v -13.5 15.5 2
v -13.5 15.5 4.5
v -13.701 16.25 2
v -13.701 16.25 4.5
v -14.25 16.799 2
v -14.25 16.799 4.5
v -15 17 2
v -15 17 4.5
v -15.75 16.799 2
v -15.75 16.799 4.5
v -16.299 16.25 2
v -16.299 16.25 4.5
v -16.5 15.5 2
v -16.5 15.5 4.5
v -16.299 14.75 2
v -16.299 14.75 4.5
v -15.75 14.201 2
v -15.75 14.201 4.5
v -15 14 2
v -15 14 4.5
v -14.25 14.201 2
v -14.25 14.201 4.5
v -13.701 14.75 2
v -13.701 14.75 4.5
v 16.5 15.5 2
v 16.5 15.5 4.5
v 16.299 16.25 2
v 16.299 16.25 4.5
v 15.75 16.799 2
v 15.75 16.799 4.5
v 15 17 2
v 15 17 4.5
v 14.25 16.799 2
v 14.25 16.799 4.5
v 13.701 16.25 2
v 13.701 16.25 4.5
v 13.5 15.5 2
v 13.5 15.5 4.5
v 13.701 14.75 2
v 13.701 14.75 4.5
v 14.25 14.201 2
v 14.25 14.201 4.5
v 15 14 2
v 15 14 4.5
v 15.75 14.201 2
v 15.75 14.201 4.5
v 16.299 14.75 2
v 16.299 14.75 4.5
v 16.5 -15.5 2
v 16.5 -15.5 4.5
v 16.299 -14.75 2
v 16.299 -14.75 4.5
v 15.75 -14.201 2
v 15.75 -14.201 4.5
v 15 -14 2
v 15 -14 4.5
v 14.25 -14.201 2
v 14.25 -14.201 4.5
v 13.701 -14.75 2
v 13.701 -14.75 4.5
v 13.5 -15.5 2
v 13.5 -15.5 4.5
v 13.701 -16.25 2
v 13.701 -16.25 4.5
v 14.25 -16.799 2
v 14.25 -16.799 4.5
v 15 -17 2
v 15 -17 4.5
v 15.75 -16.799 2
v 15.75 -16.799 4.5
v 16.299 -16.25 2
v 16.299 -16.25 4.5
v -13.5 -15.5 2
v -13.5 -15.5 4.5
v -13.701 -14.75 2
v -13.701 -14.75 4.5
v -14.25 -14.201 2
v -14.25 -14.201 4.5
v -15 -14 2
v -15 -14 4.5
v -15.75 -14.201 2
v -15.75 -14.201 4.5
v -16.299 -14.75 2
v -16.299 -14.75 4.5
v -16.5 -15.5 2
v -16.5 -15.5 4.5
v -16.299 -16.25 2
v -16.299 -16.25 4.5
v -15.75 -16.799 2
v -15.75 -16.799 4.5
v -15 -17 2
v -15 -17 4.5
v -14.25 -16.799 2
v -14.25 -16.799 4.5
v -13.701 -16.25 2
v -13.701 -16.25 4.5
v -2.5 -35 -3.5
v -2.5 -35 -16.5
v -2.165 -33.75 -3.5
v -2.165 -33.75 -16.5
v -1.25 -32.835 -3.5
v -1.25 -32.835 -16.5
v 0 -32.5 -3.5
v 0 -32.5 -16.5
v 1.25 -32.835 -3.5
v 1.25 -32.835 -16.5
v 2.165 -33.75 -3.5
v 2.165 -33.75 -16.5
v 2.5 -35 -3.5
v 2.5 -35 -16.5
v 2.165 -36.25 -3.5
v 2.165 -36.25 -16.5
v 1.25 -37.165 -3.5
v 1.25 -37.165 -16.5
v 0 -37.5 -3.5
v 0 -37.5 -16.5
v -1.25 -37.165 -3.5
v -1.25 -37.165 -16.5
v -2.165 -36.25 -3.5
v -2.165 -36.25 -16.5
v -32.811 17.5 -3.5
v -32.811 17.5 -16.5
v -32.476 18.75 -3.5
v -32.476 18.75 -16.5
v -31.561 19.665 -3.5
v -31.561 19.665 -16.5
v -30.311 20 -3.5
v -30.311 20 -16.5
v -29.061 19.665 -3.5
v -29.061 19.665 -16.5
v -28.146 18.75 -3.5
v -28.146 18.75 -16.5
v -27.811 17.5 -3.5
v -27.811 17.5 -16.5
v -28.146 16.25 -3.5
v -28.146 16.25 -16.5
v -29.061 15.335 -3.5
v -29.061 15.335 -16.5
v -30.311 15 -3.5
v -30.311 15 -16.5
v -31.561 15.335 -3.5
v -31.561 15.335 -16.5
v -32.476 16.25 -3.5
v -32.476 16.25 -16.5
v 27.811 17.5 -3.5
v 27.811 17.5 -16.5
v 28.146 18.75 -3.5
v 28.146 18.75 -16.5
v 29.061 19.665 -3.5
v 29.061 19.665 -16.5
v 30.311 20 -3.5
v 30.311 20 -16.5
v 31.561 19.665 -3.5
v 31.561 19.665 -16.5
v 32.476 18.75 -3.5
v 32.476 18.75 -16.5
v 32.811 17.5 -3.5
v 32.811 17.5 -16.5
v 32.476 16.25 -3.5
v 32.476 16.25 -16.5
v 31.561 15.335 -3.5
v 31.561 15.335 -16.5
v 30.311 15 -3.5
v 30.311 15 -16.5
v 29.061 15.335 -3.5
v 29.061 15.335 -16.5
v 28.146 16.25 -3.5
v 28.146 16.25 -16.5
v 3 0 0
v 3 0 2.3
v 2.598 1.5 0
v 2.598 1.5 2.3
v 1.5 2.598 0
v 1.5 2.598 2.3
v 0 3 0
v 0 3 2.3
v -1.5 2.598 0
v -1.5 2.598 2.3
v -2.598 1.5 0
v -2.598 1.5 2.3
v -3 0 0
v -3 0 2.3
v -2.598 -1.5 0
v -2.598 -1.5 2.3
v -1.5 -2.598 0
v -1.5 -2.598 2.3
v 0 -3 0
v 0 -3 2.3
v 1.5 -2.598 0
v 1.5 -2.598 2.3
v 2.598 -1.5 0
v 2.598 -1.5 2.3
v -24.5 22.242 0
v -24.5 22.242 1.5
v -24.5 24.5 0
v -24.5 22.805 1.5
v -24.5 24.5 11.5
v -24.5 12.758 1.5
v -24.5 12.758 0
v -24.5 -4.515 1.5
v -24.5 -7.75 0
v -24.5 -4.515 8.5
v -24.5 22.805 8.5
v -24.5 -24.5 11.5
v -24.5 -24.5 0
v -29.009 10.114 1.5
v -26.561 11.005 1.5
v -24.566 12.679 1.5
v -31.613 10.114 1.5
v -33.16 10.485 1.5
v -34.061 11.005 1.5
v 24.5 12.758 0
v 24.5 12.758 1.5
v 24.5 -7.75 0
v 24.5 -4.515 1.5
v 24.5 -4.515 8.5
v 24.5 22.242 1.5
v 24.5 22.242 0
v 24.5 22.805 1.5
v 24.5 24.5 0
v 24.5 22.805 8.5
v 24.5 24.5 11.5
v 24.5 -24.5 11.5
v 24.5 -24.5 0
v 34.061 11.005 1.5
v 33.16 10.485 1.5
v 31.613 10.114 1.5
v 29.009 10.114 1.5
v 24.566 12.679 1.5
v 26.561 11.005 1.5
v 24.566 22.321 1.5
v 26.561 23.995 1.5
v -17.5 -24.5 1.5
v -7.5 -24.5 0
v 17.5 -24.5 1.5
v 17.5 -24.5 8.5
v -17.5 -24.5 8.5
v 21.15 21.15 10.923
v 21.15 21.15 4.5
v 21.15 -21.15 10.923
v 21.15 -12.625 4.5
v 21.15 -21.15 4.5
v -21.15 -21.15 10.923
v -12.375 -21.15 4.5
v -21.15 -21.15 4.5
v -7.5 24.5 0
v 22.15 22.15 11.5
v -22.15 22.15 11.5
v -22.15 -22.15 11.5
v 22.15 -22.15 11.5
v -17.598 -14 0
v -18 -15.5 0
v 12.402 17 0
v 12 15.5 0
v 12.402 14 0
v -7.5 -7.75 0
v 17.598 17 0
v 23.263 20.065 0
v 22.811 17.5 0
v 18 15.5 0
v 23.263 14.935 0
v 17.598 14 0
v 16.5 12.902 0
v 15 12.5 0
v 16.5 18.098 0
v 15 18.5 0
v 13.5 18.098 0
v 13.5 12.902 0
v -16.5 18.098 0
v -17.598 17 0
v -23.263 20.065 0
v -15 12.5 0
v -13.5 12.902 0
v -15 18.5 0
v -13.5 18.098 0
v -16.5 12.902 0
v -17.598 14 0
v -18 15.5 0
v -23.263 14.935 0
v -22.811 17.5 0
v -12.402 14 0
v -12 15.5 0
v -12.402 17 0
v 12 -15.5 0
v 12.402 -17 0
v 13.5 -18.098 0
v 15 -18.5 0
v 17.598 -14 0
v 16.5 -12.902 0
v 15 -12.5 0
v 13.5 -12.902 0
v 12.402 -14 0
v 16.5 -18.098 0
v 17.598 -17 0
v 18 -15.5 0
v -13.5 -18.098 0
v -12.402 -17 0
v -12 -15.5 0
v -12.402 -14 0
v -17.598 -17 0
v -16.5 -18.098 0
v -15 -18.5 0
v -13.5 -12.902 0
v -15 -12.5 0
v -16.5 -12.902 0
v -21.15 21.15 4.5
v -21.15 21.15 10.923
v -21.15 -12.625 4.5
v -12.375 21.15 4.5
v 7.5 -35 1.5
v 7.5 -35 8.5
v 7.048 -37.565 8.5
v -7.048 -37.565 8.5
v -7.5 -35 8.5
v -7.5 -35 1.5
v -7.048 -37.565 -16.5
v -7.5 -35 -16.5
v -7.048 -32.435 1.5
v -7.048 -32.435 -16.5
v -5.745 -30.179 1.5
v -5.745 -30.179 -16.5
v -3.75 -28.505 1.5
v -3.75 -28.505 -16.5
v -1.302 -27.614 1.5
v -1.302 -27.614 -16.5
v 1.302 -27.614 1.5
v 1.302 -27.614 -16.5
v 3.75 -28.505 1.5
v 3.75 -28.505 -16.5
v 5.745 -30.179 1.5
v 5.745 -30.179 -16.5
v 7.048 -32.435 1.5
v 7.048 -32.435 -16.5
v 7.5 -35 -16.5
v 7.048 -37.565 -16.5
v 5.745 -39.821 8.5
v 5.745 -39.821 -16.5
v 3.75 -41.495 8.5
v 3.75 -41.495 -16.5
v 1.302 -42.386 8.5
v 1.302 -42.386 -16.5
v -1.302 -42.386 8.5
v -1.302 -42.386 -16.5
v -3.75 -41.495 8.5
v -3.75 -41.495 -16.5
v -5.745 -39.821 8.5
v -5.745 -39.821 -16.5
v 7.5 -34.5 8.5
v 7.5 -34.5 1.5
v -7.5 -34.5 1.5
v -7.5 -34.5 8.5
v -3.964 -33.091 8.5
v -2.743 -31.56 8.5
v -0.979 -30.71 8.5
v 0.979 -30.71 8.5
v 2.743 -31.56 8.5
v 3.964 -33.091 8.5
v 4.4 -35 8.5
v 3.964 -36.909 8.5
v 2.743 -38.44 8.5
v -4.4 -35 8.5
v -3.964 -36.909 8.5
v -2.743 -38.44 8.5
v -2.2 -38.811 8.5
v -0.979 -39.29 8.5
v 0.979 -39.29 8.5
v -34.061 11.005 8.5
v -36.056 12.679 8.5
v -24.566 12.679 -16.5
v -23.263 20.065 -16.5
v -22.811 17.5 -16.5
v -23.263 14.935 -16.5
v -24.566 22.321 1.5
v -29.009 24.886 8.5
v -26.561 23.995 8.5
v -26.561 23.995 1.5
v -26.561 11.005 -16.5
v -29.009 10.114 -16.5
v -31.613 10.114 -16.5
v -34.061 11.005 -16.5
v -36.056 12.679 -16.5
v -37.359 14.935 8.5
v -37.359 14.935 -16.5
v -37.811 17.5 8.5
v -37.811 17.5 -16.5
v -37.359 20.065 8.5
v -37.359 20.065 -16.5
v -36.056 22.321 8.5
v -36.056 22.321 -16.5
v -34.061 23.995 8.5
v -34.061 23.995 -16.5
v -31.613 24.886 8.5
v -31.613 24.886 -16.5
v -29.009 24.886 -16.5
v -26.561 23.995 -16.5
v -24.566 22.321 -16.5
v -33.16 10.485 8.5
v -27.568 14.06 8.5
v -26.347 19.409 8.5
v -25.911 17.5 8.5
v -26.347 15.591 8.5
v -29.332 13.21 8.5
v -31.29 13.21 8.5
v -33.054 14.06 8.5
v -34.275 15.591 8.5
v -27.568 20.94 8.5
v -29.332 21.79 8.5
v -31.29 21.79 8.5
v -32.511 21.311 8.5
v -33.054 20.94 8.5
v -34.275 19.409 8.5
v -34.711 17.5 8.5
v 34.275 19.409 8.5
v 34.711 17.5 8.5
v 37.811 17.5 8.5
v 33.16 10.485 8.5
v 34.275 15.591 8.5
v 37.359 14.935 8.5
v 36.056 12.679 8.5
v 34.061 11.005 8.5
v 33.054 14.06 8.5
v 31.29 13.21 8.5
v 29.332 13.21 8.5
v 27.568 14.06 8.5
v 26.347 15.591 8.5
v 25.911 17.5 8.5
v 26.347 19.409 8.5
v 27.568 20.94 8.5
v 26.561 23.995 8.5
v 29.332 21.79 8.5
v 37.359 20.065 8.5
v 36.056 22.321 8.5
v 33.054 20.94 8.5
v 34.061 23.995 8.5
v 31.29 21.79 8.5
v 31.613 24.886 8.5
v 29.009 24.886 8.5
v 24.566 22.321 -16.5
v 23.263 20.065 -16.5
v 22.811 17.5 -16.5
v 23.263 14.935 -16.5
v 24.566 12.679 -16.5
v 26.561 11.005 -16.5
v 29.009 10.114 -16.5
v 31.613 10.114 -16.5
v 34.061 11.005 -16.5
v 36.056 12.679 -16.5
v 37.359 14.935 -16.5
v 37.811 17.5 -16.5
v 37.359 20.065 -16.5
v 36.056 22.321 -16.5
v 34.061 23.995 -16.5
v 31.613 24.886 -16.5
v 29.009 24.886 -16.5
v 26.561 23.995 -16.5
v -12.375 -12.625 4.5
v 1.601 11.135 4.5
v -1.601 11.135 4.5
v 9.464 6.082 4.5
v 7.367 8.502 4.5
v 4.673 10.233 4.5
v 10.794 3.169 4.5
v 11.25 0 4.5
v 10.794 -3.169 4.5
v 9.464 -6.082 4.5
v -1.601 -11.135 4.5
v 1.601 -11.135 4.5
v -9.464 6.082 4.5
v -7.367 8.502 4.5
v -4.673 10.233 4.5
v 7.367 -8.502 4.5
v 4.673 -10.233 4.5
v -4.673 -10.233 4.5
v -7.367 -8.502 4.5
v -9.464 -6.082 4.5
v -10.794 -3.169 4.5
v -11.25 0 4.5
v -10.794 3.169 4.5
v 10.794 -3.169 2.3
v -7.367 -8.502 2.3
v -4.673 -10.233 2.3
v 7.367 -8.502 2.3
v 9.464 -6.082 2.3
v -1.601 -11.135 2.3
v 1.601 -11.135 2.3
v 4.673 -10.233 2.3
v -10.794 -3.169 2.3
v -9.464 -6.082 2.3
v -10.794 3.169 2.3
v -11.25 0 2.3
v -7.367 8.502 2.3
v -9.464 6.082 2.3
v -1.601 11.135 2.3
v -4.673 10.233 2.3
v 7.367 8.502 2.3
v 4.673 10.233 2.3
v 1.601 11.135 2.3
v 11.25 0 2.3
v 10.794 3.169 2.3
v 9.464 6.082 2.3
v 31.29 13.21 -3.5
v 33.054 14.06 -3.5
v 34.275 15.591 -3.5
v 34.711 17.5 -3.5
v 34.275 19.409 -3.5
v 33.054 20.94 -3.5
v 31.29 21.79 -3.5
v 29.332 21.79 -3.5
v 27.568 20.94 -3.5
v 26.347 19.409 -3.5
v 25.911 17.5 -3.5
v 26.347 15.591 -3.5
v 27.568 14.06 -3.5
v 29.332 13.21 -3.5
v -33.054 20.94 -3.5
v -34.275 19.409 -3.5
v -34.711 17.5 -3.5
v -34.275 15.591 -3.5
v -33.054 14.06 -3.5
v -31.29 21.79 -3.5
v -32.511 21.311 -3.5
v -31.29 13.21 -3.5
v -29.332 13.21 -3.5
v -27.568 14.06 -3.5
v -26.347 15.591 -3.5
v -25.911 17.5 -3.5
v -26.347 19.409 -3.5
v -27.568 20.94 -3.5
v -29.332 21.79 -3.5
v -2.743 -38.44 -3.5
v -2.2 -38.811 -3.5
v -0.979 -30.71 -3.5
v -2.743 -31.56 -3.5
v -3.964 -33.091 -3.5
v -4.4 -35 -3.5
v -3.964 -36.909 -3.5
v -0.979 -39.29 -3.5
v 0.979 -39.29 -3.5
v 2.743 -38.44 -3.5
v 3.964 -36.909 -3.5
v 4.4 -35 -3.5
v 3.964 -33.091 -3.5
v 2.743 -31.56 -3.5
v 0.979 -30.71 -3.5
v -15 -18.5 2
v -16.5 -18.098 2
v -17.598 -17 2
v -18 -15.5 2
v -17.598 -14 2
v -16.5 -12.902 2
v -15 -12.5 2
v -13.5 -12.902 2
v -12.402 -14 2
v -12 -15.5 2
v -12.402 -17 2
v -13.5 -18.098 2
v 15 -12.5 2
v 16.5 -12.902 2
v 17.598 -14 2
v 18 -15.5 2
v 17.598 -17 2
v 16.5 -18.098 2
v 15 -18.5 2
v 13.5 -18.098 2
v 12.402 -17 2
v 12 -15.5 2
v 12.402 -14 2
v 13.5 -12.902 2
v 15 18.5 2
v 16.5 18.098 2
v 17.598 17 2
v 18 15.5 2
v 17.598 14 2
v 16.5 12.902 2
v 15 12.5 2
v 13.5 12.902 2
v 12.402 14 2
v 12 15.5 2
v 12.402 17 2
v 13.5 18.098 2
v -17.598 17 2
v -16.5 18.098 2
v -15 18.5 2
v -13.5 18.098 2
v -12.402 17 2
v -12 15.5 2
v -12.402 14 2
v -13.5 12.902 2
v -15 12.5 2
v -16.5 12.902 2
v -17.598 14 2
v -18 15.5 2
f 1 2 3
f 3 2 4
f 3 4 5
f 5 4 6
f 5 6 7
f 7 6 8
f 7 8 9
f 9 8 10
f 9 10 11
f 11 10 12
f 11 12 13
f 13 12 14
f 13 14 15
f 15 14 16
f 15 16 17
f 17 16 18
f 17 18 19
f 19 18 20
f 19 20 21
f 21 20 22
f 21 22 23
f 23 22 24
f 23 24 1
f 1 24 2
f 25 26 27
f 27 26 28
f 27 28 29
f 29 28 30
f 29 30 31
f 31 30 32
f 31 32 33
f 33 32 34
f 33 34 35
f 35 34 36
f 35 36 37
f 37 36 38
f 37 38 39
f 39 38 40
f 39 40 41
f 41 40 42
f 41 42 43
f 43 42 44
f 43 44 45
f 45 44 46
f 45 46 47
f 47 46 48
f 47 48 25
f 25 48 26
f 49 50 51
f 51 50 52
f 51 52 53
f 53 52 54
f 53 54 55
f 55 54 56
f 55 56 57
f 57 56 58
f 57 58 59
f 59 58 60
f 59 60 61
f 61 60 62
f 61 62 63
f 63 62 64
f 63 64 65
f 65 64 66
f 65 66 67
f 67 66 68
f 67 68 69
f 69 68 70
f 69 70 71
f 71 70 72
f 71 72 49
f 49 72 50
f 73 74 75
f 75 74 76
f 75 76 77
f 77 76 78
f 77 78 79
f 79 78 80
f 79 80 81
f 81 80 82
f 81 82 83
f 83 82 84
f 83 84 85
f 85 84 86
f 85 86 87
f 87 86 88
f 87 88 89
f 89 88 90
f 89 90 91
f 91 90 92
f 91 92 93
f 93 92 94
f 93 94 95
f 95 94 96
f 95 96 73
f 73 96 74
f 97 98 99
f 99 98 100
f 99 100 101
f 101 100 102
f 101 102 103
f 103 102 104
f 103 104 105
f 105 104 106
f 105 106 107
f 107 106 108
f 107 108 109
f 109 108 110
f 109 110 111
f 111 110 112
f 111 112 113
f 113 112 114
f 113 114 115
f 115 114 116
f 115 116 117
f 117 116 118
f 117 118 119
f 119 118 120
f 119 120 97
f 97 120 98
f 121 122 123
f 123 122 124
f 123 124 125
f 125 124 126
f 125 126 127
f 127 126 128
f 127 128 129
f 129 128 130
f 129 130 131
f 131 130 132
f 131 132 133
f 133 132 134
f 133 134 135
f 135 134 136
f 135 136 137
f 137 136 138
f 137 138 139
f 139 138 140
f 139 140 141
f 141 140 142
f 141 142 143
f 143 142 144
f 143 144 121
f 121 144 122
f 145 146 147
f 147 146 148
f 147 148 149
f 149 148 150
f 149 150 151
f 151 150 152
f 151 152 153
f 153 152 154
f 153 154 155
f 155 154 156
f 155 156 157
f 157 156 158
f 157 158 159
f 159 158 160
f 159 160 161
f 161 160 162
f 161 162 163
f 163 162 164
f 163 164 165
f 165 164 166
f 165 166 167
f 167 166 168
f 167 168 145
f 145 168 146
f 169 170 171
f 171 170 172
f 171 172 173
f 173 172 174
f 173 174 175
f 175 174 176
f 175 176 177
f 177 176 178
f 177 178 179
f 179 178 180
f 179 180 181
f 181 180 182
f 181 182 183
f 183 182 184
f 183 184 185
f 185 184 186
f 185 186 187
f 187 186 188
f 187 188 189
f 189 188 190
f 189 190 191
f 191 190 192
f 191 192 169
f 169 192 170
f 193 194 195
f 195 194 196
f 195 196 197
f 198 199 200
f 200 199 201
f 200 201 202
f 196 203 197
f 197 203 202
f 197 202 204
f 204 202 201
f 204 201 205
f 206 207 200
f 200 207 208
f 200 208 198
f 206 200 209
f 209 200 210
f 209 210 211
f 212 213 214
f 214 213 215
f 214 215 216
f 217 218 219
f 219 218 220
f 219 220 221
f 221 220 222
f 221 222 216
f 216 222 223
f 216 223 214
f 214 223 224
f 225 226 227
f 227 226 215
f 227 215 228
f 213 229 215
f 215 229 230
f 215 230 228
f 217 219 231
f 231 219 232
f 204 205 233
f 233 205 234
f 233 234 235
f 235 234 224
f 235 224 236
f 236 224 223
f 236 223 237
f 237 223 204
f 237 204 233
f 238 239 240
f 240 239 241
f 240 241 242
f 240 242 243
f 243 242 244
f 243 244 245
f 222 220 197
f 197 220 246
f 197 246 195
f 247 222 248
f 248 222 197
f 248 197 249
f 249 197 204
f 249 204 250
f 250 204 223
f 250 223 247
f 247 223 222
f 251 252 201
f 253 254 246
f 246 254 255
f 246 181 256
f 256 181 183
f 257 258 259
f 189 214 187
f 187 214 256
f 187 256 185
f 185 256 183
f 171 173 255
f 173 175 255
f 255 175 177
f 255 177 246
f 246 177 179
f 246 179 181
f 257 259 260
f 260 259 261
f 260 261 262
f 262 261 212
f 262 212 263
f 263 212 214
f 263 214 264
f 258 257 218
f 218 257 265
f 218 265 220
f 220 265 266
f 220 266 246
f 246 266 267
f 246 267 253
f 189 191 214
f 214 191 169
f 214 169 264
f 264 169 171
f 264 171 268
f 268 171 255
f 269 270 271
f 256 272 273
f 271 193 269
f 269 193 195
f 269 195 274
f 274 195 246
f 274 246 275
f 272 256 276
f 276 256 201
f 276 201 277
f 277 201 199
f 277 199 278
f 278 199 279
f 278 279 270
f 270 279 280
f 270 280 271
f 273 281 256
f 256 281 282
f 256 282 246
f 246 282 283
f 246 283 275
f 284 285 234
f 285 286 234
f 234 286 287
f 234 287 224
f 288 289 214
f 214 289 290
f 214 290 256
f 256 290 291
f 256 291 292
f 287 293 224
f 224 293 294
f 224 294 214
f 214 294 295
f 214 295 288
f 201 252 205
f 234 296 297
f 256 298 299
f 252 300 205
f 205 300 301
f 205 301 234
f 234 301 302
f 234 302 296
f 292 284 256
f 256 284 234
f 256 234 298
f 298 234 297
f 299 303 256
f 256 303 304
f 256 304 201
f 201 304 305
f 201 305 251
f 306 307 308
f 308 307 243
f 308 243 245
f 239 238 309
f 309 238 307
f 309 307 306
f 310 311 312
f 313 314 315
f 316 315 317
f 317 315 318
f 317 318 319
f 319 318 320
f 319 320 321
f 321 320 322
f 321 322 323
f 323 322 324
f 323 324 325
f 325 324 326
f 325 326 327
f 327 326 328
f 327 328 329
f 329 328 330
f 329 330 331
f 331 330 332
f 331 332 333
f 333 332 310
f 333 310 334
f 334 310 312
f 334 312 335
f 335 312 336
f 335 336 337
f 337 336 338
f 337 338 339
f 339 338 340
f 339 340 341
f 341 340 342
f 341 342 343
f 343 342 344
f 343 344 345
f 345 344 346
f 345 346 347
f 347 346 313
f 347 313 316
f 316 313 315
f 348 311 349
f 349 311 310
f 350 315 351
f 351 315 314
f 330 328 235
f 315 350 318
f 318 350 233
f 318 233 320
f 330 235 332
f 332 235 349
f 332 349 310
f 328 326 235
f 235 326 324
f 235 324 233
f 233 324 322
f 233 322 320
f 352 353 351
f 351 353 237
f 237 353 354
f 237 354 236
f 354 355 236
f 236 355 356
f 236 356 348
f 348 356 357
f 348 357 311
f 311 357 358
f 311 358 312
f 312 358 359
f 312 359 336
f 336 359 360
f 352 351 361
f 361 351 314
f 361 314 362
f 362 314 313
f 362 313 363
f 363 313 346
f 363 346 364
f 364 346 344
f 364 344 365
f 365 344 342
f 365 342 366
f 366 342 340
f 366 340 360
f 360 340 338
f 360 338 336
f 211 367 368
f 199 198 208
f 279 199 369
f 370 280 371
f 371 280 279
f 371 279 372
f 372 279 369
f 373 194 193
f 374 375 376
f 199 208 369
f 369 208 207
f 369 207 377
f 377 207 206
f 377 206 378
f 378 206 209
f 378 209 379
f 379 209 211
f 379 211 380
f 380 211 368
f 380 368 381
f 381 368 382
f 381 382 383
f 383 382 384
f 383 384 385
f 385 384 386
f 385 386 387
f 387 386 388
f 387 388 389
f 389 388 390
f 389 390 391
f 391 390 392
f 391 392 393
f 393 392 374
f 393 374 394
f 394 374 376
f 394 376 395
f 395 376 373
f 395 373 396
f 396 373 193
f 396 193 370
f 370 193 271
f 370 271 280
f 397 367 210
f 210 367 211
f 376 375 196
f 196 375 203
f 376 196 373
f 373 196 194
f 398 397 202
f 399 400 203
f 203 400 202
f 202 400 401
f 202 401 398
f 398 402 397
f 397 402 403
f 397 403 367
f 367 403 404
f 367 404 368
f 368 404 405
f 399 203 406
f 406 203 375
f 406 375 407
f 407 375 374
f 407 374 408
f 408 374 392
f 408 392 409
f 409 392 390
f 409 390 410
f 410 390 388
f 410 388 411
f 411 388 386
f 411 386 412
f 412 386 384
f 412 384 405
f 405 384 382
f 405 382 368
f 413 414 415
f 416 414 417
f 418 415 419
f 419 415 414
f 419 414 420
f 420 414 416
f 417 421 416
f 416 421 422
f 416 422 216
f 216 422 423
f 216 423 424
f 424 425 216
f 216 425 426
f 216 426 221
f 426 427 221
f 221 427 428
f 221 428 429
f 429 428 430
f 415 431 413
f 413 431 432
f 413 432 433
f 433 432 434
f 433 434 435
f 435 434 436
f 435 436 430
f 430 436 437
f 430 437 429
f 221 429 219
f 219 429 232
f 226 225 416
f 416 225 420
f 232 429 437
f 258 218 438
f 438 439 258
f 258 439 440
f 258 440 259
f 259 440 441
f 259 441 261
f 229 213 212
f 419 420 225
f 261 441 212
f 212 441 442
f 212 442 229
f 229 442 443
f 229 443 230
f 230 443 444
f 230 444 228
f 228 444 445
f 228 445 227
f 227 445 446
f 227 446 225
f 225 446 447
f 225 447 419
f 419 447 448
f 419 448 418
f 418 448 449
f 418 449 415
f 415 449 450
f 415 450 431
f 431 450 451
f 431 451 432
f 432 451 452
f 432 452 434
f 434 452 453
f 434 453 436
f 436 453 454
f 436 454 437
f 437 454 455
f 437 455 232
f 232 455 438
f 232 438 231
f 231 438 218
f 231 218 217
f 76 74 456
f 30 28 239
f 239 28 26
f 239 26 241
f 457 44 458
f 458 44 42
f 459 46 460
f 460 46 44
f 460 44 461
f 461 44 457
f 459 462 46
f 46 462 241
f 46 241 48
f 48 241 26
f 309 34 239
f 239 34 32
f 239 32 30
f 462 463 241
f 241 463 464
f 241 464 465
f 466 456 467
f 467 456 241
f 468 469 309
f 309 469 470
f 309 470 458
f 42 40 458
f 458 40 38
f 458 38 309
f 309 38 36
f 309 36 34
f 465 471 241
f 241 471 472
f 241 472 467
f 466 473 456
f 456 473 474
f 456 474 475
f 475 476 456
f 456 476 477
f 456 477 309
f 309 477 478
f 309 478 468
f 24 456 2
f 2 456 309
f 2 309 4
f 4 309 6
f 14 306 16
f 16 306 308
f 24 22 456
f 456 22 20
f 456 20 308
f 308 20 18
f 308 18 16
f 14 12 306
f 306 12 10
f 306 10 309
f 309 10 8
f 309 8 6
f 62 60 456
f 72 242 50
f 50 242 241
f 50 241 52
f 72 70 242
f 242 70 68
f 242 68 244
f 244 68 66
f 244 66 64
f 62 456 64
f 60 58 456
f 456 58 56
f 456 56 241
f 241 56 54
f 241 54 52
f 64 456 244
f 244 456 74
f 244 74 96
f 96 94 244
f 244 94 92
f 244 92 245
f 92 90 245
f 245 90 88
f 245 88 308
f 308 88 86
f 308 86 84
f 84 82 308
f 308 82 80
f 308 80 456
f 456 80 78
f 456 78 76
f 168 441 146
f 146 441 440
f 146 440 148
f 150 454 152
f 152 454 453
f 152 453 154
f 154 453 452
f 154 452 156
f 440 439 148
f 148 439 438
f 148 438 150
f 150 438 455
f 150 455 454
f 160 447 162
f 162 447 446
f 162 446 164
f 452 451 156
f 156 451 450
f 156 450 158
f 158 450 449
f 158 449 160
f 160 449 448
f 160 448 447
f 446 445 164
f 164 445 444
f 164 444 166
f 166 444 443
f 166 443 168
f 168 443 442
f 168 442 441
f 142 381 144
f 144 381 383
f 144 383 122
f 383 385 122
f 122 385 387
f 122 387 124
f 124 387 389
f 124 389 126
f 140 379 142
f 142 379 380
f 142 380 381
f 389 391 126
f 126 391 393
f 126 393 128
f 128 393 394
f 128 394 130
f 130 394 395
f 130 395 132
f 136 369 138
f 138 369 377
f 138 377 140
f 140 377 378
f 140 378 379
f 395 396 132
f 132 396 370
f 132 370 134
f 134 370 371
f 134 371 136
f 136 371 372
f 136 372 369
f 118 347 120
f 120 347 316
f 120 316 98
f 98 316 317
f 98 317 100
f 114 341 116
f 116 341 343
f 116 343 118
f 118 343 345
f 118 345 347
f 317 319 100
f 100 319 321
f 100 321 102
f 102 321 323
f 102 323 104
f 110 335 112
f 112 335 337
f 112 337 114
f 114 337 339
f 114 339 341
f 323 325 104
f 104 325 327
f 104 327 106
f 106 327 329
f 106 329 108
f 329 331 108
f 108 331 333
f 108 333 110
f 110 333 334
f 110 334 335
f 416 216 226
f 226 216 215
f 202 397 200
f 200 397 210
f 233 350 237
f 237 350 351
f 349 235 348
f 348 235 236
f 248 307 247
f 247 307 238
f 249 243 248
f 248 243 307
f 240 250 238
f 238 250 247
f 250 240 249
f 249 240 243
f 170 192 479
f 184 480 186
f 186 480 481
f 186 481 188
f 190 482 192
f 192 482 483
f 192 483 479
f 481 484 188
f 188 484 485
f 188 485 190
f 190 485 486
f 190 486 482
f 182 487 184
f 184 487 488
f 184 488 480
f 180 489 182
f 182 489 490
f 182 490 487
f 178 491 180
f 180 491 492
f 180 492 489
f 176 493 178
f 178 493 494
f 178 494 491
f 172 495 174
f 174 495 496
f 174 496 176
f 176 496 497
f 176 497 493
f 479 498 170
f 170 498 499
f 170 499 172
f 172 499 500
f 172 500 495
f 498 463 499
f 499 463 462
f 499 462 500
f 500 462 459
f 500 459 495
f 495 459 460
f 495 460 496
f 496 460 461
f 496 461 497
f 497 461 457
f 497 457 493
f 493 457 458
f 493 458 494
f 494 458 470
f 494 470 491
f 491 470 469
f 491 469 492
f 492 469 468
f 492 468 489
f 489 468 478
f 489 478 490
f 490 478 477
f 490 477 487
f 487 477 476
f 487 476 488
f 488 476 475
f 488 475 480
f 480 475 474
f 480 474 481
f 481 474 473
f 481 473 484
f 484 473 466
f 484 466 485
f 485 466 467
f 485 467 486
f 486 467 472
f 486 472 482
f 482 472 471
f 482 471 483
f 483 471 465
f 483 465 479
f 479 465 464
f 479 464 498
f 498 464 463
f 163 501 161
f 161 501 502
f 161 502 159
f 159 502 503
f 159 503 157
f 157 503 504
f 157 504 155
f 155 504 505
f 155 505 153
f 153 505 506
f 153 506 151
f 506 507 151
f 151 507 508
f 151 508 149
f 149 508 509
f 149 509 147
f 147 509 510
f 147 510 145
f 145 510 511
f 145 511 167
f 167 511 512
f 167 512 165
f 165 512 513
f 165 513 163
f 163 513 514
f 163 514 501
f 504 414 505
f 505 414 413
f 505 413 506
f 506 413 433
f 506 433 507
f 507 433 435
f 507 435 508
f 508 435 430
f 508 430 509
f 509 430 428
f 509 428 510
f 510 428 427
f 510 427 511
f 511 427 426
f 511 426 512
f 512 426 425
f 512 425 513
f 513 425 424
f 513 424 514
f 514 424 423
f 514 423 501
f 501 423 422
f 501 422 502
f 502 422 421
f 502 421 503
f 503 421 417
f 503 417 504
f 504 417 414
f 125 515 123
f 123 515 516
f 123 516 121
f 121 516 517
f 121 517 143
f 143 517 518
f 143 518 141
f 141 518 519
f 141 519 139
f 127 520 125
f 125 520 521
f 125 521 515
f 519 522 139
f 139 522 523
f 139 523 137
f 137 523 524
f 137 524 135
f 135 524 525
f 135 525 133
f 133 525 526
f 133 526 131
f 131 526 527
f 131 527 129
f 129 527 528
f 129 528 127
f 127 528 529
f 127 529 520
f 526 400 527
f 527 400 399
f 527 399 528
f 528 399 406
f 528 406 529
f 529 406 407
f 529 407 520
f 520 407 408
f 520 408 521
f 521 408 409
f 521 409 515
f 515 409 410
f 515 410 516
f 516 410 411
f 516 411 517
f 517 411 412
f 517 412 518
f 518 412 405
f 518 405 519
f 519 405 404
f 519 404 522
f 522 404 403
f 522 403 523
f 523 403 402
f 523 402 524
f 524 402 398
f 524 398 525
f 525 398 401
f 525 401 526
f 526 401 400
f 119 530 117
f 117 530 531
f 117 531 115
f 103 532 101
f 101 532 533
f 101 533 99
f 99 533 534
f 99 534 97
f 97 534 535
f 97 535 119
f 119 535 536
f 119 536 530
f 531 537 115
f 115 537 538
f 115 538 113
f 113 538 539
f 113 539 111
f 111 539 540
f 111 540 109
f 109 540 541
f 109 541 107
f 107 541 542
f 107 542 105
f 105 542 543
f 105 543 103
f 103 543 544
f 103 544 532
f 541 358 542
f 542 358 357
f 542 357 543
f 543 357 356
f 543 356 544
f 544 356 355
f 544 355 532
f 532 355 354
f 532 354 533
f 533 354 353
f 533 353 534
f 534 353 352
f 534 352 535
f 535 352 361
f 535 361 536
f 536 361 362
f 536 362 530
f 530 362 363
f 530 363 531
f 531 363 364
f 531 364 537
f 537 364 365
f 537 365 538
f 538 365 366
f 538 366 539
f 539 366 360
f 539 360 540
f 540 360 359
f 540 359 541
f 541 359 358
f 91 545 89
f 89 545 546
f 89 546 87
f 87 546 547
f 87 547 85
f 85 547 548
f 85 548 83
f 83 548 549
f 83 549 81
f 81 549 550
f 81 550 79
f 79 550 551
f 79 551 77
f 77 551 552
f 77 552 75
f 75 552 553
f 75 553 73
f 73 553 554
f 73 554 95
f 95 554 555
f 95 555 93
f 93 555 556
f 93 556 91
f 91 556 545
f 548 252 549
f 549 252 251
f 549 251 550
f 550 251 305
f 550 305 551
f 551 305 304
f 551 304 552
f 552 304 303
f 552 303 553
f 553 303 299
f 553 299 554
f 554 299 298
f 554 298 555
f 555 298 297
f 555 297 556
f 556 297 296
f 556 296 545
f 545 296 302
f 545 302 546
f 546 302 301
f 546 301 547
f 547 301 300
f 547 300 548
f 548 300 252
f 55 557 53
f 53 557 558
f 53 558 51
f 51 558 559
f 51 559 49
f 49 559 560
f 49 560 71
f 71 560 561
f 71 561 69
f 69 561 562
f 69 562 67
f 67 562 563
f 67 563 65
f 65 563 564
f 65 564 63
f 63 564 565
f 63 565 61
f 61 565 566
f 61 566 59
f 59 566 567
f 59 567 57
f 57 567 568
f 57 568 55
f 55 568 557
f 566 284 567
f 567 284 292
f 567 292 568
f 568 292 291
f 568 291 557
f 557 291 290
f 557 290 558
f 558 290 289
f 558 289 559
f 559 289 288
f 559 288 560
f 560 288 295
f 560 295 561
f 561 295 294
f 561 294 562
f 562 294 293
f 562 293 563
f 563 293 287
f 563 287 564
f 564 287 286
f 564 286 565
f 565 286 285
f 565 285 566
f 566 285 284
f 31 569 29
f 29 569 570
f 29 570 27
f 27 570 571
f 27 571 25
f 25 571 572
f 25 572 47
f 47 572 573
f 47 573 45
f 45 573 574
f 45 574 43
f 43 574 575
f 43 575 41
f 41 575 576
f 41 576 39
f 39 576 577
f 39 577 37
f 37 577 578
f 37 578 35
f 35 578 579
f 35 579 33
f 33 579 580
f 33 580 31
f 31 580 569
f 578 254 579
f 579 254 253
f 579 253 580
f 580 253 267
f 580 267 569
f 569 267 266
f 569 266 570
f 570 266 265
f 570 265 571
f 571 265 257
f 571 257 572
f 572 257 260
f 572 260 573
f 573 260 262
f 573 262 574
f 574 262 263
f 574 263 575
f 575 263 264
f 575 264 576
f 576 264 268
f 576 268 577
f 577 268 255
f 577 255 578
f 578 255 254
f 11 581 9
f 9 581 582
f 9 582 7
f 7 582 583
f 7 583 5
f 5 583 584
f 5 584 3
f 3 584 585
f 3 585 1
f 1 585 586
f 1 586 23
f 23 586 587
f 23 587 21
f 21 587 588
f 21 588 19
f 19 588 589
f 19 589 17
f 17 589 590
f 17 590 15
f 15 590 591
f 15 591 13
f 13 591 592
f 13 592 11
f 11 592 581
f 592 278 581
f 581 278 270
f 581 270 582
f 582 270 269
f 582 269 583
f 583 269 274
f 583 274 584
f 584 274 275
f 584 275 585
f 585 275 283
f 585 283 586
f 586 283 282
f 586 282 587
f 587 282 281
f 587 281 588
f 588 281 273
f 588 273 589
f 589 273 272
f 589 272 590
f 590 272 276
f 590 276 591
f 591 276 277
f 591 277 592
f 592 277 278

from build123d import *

# Parameters (mm, degrees)
SKIZZE1_W                             = 49
SKIZZE1_H                             = 49
AUFSATZ_LINEAR_AUSTRAGEN1_DEPTH       = 11.5
SKIZZE2_W                             = 42.3
SKIZZE2_H                             = 42.3
SCHNITT_LINEAR_AUSTRAGEN1_DEPTH       = 5
SKIZZE3_R                             = 2.85
SCHNITT_LINEAR_AUSTRAGEN2_DEPTH       = 7
AUFSATZ_LINEAR_AUSTRAGEN2_DEPTH       = 2
AUFSATZ_LINEAR_AUSTRAGEN2_DEPTH_BACK  = 5
SKIZZE6_W                             = 42.3
SKIZZE6_H                             = 42.3
SCHNITT_LINEAR_AUSTRAGEN3_DEPTH       = 7
AUFSATZ_LINEAR_START                  = 18
SKIZZE8_R                             = 7.5
AUFSATZ_LINEAR_AUSTRAGEN3_DEPTH       = 18
FASE2_SIZE                            = 10
FASE4_SIZE                            = 1
FASE4_SIZE2                           = 0.577350269
SKIZZE17_R                            = 3
SCHNITT_LINEAR_AUSTRAGEN8_DEPTH       = 23
SKIZZE18_R                            = 11.25
SCHNITT_LINEAR_AUSTRAGEN9_DEPTH       = 2.2
SCHNITT_LINEAR_AUSTRAGEN10_DEPTH      = 64.402786508
SCHNITT_LINEAR_AUSTRAGEN10_DEPTH_BACK = 64.402786508
SKIZZE10_R                            = 2.5
SKIZZE19_R                            = 4.4
SCHNITT_LINEAR_AUSTRAGEN11_DEPTH      = 12
KREISMUSTER1_COUNT                    = 3
SKIZZE21_R                            = 1.5
SCHNITT_LINEAR_AUSTRAGEN12_DEPTH      = 10
SKIZZE22_R                            = 3
SCHNITT_LINEAR_AUSTRAGEN13_DEPTH      = 2


with BuildPart() as part:
    # Skizze1 → Aufsatz-Linear austragen1 (new body)
    with BuildSketch(Plane.XY):
        Rectangle(SKIZZE1_W, SKIZZE1_H)
    extrude(amount=AUFSATZ_LINEAR_AUSTRAGEN1_DEPTH)

    # Skizze2 → Schnitt-Linear austragen1 (cut)
    with BuildSketch(Plane.XY.offset(11.5)):
        Rectangle(SKIZZE2_W, SKIZZE2_H)
    extrude(amount=-SCHNITT_LINEAR_AUSTRAGEN1_DEPTH, mode=Mode.SUBTRACT)

    # Skizze3 → Schnitt-Linear austragen2 (cut)
    with BuildSketch(Plane.XY.offset(6.5)):
        Circle(SKIZZE3_R)
    extrude(amount=-SCHNITT_LINEAR_AUSTRAGEN2_DEPTH, mode=Mode.SUBTRACT)

    # Skizze5 → Aufsatz-Linear austragen2 (add, two sides: drawn at the far end of the back side and taken through both)
    with BuildSketch(Plane.XY.offset(6.5).offset(-AUFSATZ_LINEAR_AUSTRAGEN2_DEPTH_BACK)):
        with BuildLine():
            Line((26.560889132, 23.995190528), (0, 8.660254038))
            Line((0, 8.660254038), (-26.560889132, 23.995190528))
            ThreePointArc((-26.560889132, 23.995190528), (-36.806079661, 21.25), (-34.060889132, 11.004809472))
            Line((-34.060889132, 11.004809472), (-7.5, -4.330127019))
            Line((-7.5, -4.330127019), (-7.5, -35))
            ThreePointArc((-7.5, -35), (0, -42.5), (7.5, -35))
            Line((7.5, -35), (7.5, -4.330127019))
            Line((7.5, -4.330127019), (34.060889132, 11.004809472))
            ThreePointArc((34.060889132, 11.004809472), (36.806079661, 21.25), (26.560889132, 23.995190528))
        make_face()
    extrude(amount=AUFSATZ_LINEAR_AUSTRAGEN2_DEPTH + AUFSATZ_LINEAR_AUSTRAGEN2_DEPTH_BACK)

    # Skizze6 → Schnitt-Linear austragen3 (cut)
    with BuildSketch(Plane.XY.offset(11.5)):
        Rectangle(SKIZZE6_W, SKIZZE6_H)
    extrude(amount=-SCHNITT_LINEAR_AUSTRAGEN3_DEPTH, mode=Mode.SUBTRACT)

    # Skizze8 → Aufsatz-Linear austragen3 (add)
    with BuildSketch(Plane(origin=(0, 0, 1.5), x_dir=(-1, 0, 0), z_dir=(0, 0, -1)).offset(AUFSATZ_LINEAR_START)):
        with Locations(Location((-30.310889132, 17.5, 0), (0, 0, 240))):
            Circle(SKIZZE8_R)
        with Locations((0, -35)):
            Circle(SKIZZE8_R)
        with Locations((30.310889132, 17.5)):
            Circle(SKIZZE8_R)
    extrude(amount=-AUFSATZ_LINEAR_AUSTRAGEN3_DEPTH)

    # Fase2
    fase2_edges = [part.edges().sort_by_distance(p)[0] for p in [
        (-24.5, 5.484827557, 5),
        (-7.5, -24.5, 5),
        (7.5, -24.5, 5),
        (24.5, 5.484827557, 5),
    ]]
    chamfer(fase2_edges, length=FASE2_SIZE)

    # Fase4
    fase4_edges = [part.edges().sort_by_distance(p)[0] for p in [
        (21.15, 0, 11.5),
        (0, 21.15, 11.5),
        (-21.15, 0, 11.5),
        (0, -21.15, 11.5),
    ]]
    fase4_side = [part.faces().sort_by_distance(p)[0] for p in [
        (0, 23.807035354, 11.5),
    ]]
    chamfer(fase4_edges, length=FASE4_SIZE, length2=FASE4_SIZE2, reference=fase4_side[0])

    # Skizze17 → Schnitt-Linear austragen8 (cut)
    with BuildSketch(Plane.XY.offset(4.5)):
        Circle(SKIZZE17_R)
    extrude(amount=-SCHNITT_LINEAR_AUSTRAGEN8_DEPTH, mode=Mode.SUBTRACT)

    # Skizze18 → Schnitt-Linear austragen9 (cut)
    with BuildSketch(Plane.XY.offset(4.5)):
        Circle(SKIZZE18_R)
    extrude(amount=-SCHNITT_LINEAR_AUSTRAGEN9_DEPTH, mode=Mode.SUBTRACT)

    # Skizze10 → Schnitt-Linear austragen10 (cut, two sides: drawn at the far end of the back side and taken through both)
    with BuildSketch(Plane(origin=(0, 0, -16.5), x_dir=(-1, 0, 0), z_dir=(0, 0, -1)).offset(-SCHNITT_LINEAR_AUSTRAGEN10_DEPTH_BACK)):
        with Locations((-30.310889132, 17.5)):
            Circle(SKIZZE10_R)
        with Locations((30.310889132, 17.5)):
            Circle(SKIZZE10_R)
        with Locations((0, -35)):
            Circle(SKIZZE10_R)
    extrude(amount=SCHNITT_LINEAR_AUSTRAGEN10_DEPTH + SCHNITT_LINEAR_AUSTRAGEN10_DEPTH_BACK, mode=Mode.SUBTRACT)

    # Skizze19 → Schnitt-Linear austragen11 (cut)
    with BuildSketch(Plane.XY.offset(8.5)):
        with Locations((30.310889132, 17.5)):
            Circle(SKIZZE19_R)
    schnitt_linear_austragen11 = extrude(amount=-SCHNITT_LINEAR_AUSTRAGEN11_DEPTH, mode=Mode.SUBTRACT)

    # Kreismuster1: Schnitt-Linear austragen11 ×3 about axis
    kreismuster1_axis = Axis((0, 0, 0), (0, 0, 1))
    for i in range(1, KREISMUSTER1_COUNT):
        add(schnitt_linear_austragen11.rotate(kreismuster1_axis, i * 360 / KREISMUSTER1_COUNT), mode=Mode.SUBTRACT)

    # Skizze21 → Schnitt-Linear austragen12 (cut)
    with BuildSketch(Plane.XY.offset(4.5)):
        with Locations((-15, 15.5)):
            Circle(SKIZZE21_R)
        with Locations((15, 15.5)):
            Circle(SKIZZE21_R)
        with Locations((15, -15.5)):
            Circle(SKIZZE21_R)
        with Locations((-15, -15.5)):
            Circle(SKIZZE21_R)
    extrude(amount=-SCHNITT_LINEAR_AUSTRAGEN12_DEPTH, mode=Mode.SUBTRACT)

    # Skizze22 → Schnitt-Linear austragen13 (cut)
    with BuildSketch(Plane(origin=(0, 0, 0), x_dir=(-1, 0, 0), z_dir=(0, 0, -1))):
        with Locations((-15, 15.5)):
            Circle(SKIZZE22_R)
        with Locations((15, 15.5)):
            Circle(SKIZZE22_R)
        with Locations((15, -15.5)):
            Circle(SKIZZE22_R)
        with Locations((-15, -15.5)):
            Circle(SKIZZE22_R)
    extrude(amount=-SCHNITT_LINEAR_AUSTRAGEN13_DEPTH, mode=Mode.SUBTRACT)


solid = part.part
